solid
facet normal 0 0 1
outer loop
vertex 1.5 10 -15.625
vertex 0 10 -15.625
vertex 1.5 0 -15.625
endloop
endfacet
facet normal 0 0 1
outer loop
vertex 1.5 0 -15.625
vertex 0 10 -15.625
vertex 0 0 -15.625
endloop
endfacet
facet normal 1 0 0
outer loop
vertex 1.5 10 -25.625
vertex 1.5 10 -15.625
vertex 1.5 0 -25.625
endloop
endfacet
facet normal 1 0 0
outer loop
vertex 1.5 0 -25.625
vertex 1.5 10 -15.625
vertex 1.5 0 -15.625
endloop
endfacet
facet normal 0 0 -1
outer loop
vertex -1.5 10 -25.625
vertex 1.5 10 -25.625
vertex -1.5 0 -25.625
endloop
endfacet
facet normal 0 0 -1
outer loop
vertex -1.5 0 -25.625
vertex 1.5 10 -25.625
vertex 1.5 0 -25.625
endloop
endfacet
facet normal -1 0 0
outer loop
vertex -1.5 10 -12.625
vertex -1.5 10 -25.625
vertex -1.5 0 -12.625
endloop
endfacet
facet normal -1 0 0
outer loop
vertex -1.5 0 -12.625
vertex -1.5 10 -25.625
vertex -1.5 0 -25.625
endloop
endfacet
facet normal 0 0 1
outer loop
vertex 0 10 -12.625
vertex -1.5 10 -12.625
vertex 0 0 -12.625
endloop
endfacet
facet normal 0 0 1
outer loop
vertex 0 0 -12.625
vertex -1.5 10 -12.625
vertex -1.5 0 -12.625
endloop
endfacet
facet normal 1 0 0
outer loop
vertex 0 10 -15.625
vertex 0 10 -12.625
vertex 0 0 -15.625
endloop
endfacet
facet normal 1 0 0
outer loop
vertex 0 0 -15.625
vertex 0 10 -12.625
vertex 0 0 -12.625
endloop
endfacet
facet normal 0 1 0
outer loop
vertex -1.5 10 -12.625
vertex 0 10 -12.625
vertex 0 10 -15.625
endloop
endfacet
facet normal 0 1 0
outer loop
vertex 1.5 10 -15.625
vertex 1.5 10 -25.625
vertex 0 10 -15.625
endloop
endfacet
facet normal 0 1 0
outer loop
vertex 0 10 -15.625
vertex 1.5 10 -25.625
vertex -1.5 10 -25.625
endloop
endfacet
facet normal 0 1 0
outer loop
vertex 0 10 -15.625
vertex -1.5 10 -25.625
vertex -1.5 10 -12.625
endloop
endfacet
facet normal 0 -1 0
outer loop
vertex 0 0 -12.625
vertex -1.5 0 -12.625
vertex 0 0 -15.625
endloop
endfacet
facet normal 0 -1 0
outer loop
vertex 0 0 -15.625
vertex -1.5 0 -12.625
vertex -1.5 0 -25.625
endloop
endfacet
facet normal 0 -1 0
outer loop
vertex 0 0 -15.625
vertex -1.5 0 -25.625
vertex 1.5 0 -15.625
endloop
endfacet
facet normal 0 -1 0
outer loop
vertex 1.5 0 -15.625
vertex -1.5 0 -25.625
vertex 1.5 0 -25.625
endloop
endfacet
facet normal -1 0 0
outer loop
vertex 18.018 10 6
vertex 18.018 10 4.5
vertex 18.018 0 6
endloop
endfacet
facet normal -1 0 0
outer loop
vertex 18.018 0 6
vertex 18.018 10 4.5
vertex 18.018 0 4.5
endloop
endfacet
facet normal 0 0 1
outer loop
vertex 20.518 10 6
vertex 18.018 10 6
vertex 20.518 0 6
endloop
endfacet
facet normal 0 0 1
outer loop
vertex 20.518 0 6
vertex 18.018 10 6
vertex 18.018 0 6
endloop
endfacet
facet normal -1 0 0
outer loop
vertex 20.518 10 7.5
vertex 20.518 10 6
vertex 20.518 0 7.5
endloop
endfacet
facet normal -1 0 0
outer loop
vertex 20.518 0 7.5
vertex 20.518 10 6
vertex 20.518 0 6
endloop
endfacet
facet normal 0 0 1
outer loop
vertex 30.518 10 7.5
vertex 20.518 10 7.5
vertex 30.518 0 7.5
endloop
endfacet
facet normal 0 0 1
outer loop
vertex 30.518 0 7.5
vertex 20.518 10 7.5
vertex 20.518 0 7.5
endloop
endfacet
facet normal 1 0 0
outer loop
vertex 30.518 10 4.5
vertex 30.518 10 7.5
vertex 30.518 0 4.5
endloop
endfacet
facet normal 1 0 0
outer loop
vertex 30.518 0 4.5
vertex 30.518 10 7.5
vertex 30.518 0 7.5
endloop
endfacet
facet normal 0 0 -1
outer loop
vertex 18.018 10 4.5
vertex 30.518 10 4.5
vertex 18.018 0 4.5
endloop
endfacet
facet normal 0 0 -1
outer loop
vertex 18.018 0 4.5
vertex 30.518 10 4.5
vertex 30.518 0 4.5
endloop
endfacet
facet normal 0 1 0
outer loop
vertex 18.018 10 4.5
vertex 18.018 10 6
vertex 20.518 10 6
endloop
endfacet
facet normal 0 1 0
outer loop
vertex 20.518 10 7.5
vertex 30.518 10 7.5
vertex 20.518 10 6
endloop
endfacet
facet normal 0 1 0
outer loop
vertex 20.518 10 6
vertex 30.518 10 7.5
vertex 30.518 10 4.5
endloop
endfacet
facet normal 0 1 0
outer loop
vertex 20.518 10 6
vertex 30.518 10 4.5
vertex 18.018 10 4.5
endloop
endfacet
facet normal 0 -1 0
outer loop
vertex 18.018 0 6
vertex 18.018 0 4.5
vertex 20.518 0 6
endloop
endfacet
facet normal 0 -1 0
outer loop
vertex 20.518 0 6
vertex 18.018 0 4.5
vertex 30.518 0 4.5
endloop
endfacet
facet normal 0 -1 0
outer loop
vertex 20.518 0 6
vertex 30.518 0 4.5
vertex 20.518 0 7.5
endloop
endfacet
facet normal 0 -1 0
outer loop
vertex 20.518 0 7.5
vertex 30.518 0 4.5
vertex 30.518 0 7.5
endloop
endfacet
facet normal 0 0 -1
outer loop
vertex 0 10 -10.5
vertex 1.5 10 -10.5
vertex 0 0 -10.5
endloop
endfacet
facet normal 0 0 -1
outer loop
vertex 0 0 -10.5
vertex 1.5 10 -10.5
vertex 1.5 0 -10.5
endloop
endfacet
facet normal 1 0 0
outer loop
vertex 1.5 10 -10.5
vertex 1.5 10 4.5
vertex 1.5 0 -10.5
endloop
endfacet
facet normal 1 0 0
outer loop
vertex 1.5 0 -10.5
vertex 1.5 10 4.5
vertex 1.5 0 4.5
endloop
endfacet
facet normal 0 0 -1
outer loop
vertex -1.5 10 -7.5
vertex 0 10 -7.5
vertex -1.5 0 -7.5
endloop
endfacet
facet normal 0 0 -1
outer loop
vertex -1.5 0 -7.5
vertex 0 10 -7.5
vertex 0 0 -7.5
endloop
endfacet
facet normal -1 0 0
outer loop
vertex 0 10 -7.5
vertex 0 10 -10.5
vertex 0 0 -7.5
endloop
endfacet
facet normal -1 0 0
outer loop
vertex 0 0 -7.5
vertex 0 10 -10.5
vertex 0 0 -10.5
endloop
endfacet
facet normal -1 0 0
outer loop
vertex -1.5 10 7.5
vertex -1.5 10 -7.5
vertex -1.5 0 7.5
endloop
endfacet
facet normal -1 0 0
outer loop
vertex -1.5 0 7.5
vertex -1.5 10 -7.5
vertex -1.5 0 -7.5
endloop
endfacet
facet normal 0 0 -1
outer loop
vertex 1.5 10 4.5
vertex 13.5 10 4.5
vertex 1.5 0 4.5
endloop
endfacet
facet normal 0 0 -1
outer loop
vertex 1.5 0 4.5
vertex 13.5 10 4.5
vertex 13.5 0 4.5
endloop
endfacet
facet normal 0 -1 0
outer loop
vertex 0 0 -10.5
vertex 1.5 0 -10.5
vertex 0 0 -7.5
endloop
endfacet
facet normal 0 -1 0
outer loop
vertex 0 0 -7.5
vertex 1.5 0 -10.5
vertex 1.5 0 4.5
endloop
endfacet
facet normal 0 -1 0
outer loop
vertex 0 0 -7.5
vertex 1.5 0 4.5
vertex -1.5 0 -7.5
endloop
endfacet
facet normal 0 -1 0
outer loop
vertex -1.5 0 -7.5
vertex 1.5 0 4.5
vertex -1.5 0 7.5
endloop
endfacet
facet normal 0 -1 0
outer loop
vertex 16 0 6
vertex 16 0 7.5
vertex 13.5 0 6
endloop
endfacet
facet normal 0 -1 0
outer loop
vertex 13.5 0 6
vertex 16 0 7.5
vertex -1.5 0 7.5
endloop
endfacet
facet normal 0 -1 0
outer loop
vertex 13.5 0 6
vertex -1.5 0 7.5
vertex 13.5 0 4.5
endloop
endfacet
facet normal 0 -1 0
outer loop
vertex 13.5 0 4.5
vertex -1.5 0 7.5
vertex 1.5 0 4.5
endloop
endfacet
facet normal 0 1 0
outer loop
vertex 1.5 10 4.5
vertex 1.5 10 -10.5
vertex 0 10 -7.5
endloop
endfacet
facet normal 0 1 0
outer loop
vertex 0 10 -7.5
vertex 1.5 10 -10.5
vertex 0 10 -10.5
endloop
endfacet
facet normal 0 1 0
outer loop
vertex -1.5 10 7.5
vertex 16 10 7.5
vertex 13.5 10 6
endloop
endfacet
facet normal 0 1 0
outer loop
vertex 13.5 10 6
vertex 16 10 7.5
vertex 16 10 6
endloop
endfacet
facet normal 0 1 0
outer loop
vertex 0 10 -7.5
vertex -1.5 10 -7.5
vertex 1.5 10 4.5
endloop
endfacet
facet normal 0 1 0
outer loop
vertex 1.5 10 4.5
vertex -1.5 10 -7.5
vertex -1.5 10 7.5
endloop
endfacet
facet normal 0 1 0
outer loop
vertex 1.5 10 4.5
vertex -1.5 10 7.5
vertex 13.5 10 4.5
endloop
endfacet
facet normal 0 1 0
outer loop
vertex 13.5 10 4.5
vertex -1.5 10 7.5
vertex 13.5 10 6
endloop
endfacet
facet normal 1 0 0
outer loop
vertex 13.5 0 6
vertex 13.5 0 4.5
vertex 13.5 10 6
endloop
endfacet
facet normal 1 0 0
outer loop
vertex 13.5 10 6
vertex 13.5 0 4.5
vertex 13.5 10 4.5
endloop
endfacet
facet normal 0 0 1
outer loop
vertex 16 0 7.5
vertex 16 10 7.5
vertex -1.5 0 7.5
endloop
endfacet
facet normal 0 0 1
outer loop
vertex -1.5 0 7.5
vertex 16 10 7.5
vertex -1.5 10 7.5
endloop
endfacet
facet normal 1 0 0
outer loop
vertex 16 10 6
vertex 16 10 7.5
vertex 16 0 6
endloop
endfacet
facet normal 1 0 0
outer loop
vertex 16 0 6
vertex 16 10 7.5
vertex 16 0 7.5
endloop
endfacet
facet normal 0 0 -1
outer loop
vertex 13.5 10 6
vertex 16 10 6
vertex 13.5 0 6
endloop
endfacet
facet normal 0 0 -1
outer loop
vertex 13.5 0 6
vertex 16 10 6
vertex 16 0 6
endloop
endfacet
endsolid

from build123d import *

# Parameters (mm, degrees)
SKETCH1_W           = 1.5
SKETCH1_H           = 3
SKETCH1_W_2         = 3
SKETCH1_H_2         = 15
SKETCH1_W_3         = 2.5
SKETCH1_H_3         = 1.5
BOSS_EXTRUDE2_DEPTH = 10


with BuildPart() as part:
    # Sketch1 → Boss-Extrude2 (new body)
    with BuildSketch(Plane(origin=(0, 0, 0), x_dir=(1, 0, 0), z_dir=(0, 1, 0))):
        Polygon((-1.5, 15.625086096), (0, 15.625086096), (1.5, 15.625086096), (1.5, 25.625086096), (-1.5, 25.625086096), align=None)
        with Locations((-0.75, 14.125086096)):
            Rectangle(SKETCH1_W, SKETCH1_H)
        with Locations((0.75, 9)):
            Rectangle(SKETCH1_W, SKETCH1_H)
        Rectangle(SKETCH1_W_2, SKETCH1_H_2)
        Polygon((1.5, -4.5), (1.5, -7.5), (13.5, -7.5), (13.5, -6), (13.5, -4.5), align=None)
        with Locations((19.267750949, -5.25)):
            Rectangle(SKETCH1_W_3, SKETCH1_H_3)
        Polygon((20.517750949, -4.5), (20.517750949, -6), (20.517750949, -7.5), (30.517750949, -7.5), (30.517750949, -4.5), align=None)
        with Locations((14.75, -6.75)):
            Rectangle(SKETCH1_W_3, SKETCH1_H_3)
    extrude(amount=BOSS_EXTRUDE2_DEPTH)


solid = part.part
